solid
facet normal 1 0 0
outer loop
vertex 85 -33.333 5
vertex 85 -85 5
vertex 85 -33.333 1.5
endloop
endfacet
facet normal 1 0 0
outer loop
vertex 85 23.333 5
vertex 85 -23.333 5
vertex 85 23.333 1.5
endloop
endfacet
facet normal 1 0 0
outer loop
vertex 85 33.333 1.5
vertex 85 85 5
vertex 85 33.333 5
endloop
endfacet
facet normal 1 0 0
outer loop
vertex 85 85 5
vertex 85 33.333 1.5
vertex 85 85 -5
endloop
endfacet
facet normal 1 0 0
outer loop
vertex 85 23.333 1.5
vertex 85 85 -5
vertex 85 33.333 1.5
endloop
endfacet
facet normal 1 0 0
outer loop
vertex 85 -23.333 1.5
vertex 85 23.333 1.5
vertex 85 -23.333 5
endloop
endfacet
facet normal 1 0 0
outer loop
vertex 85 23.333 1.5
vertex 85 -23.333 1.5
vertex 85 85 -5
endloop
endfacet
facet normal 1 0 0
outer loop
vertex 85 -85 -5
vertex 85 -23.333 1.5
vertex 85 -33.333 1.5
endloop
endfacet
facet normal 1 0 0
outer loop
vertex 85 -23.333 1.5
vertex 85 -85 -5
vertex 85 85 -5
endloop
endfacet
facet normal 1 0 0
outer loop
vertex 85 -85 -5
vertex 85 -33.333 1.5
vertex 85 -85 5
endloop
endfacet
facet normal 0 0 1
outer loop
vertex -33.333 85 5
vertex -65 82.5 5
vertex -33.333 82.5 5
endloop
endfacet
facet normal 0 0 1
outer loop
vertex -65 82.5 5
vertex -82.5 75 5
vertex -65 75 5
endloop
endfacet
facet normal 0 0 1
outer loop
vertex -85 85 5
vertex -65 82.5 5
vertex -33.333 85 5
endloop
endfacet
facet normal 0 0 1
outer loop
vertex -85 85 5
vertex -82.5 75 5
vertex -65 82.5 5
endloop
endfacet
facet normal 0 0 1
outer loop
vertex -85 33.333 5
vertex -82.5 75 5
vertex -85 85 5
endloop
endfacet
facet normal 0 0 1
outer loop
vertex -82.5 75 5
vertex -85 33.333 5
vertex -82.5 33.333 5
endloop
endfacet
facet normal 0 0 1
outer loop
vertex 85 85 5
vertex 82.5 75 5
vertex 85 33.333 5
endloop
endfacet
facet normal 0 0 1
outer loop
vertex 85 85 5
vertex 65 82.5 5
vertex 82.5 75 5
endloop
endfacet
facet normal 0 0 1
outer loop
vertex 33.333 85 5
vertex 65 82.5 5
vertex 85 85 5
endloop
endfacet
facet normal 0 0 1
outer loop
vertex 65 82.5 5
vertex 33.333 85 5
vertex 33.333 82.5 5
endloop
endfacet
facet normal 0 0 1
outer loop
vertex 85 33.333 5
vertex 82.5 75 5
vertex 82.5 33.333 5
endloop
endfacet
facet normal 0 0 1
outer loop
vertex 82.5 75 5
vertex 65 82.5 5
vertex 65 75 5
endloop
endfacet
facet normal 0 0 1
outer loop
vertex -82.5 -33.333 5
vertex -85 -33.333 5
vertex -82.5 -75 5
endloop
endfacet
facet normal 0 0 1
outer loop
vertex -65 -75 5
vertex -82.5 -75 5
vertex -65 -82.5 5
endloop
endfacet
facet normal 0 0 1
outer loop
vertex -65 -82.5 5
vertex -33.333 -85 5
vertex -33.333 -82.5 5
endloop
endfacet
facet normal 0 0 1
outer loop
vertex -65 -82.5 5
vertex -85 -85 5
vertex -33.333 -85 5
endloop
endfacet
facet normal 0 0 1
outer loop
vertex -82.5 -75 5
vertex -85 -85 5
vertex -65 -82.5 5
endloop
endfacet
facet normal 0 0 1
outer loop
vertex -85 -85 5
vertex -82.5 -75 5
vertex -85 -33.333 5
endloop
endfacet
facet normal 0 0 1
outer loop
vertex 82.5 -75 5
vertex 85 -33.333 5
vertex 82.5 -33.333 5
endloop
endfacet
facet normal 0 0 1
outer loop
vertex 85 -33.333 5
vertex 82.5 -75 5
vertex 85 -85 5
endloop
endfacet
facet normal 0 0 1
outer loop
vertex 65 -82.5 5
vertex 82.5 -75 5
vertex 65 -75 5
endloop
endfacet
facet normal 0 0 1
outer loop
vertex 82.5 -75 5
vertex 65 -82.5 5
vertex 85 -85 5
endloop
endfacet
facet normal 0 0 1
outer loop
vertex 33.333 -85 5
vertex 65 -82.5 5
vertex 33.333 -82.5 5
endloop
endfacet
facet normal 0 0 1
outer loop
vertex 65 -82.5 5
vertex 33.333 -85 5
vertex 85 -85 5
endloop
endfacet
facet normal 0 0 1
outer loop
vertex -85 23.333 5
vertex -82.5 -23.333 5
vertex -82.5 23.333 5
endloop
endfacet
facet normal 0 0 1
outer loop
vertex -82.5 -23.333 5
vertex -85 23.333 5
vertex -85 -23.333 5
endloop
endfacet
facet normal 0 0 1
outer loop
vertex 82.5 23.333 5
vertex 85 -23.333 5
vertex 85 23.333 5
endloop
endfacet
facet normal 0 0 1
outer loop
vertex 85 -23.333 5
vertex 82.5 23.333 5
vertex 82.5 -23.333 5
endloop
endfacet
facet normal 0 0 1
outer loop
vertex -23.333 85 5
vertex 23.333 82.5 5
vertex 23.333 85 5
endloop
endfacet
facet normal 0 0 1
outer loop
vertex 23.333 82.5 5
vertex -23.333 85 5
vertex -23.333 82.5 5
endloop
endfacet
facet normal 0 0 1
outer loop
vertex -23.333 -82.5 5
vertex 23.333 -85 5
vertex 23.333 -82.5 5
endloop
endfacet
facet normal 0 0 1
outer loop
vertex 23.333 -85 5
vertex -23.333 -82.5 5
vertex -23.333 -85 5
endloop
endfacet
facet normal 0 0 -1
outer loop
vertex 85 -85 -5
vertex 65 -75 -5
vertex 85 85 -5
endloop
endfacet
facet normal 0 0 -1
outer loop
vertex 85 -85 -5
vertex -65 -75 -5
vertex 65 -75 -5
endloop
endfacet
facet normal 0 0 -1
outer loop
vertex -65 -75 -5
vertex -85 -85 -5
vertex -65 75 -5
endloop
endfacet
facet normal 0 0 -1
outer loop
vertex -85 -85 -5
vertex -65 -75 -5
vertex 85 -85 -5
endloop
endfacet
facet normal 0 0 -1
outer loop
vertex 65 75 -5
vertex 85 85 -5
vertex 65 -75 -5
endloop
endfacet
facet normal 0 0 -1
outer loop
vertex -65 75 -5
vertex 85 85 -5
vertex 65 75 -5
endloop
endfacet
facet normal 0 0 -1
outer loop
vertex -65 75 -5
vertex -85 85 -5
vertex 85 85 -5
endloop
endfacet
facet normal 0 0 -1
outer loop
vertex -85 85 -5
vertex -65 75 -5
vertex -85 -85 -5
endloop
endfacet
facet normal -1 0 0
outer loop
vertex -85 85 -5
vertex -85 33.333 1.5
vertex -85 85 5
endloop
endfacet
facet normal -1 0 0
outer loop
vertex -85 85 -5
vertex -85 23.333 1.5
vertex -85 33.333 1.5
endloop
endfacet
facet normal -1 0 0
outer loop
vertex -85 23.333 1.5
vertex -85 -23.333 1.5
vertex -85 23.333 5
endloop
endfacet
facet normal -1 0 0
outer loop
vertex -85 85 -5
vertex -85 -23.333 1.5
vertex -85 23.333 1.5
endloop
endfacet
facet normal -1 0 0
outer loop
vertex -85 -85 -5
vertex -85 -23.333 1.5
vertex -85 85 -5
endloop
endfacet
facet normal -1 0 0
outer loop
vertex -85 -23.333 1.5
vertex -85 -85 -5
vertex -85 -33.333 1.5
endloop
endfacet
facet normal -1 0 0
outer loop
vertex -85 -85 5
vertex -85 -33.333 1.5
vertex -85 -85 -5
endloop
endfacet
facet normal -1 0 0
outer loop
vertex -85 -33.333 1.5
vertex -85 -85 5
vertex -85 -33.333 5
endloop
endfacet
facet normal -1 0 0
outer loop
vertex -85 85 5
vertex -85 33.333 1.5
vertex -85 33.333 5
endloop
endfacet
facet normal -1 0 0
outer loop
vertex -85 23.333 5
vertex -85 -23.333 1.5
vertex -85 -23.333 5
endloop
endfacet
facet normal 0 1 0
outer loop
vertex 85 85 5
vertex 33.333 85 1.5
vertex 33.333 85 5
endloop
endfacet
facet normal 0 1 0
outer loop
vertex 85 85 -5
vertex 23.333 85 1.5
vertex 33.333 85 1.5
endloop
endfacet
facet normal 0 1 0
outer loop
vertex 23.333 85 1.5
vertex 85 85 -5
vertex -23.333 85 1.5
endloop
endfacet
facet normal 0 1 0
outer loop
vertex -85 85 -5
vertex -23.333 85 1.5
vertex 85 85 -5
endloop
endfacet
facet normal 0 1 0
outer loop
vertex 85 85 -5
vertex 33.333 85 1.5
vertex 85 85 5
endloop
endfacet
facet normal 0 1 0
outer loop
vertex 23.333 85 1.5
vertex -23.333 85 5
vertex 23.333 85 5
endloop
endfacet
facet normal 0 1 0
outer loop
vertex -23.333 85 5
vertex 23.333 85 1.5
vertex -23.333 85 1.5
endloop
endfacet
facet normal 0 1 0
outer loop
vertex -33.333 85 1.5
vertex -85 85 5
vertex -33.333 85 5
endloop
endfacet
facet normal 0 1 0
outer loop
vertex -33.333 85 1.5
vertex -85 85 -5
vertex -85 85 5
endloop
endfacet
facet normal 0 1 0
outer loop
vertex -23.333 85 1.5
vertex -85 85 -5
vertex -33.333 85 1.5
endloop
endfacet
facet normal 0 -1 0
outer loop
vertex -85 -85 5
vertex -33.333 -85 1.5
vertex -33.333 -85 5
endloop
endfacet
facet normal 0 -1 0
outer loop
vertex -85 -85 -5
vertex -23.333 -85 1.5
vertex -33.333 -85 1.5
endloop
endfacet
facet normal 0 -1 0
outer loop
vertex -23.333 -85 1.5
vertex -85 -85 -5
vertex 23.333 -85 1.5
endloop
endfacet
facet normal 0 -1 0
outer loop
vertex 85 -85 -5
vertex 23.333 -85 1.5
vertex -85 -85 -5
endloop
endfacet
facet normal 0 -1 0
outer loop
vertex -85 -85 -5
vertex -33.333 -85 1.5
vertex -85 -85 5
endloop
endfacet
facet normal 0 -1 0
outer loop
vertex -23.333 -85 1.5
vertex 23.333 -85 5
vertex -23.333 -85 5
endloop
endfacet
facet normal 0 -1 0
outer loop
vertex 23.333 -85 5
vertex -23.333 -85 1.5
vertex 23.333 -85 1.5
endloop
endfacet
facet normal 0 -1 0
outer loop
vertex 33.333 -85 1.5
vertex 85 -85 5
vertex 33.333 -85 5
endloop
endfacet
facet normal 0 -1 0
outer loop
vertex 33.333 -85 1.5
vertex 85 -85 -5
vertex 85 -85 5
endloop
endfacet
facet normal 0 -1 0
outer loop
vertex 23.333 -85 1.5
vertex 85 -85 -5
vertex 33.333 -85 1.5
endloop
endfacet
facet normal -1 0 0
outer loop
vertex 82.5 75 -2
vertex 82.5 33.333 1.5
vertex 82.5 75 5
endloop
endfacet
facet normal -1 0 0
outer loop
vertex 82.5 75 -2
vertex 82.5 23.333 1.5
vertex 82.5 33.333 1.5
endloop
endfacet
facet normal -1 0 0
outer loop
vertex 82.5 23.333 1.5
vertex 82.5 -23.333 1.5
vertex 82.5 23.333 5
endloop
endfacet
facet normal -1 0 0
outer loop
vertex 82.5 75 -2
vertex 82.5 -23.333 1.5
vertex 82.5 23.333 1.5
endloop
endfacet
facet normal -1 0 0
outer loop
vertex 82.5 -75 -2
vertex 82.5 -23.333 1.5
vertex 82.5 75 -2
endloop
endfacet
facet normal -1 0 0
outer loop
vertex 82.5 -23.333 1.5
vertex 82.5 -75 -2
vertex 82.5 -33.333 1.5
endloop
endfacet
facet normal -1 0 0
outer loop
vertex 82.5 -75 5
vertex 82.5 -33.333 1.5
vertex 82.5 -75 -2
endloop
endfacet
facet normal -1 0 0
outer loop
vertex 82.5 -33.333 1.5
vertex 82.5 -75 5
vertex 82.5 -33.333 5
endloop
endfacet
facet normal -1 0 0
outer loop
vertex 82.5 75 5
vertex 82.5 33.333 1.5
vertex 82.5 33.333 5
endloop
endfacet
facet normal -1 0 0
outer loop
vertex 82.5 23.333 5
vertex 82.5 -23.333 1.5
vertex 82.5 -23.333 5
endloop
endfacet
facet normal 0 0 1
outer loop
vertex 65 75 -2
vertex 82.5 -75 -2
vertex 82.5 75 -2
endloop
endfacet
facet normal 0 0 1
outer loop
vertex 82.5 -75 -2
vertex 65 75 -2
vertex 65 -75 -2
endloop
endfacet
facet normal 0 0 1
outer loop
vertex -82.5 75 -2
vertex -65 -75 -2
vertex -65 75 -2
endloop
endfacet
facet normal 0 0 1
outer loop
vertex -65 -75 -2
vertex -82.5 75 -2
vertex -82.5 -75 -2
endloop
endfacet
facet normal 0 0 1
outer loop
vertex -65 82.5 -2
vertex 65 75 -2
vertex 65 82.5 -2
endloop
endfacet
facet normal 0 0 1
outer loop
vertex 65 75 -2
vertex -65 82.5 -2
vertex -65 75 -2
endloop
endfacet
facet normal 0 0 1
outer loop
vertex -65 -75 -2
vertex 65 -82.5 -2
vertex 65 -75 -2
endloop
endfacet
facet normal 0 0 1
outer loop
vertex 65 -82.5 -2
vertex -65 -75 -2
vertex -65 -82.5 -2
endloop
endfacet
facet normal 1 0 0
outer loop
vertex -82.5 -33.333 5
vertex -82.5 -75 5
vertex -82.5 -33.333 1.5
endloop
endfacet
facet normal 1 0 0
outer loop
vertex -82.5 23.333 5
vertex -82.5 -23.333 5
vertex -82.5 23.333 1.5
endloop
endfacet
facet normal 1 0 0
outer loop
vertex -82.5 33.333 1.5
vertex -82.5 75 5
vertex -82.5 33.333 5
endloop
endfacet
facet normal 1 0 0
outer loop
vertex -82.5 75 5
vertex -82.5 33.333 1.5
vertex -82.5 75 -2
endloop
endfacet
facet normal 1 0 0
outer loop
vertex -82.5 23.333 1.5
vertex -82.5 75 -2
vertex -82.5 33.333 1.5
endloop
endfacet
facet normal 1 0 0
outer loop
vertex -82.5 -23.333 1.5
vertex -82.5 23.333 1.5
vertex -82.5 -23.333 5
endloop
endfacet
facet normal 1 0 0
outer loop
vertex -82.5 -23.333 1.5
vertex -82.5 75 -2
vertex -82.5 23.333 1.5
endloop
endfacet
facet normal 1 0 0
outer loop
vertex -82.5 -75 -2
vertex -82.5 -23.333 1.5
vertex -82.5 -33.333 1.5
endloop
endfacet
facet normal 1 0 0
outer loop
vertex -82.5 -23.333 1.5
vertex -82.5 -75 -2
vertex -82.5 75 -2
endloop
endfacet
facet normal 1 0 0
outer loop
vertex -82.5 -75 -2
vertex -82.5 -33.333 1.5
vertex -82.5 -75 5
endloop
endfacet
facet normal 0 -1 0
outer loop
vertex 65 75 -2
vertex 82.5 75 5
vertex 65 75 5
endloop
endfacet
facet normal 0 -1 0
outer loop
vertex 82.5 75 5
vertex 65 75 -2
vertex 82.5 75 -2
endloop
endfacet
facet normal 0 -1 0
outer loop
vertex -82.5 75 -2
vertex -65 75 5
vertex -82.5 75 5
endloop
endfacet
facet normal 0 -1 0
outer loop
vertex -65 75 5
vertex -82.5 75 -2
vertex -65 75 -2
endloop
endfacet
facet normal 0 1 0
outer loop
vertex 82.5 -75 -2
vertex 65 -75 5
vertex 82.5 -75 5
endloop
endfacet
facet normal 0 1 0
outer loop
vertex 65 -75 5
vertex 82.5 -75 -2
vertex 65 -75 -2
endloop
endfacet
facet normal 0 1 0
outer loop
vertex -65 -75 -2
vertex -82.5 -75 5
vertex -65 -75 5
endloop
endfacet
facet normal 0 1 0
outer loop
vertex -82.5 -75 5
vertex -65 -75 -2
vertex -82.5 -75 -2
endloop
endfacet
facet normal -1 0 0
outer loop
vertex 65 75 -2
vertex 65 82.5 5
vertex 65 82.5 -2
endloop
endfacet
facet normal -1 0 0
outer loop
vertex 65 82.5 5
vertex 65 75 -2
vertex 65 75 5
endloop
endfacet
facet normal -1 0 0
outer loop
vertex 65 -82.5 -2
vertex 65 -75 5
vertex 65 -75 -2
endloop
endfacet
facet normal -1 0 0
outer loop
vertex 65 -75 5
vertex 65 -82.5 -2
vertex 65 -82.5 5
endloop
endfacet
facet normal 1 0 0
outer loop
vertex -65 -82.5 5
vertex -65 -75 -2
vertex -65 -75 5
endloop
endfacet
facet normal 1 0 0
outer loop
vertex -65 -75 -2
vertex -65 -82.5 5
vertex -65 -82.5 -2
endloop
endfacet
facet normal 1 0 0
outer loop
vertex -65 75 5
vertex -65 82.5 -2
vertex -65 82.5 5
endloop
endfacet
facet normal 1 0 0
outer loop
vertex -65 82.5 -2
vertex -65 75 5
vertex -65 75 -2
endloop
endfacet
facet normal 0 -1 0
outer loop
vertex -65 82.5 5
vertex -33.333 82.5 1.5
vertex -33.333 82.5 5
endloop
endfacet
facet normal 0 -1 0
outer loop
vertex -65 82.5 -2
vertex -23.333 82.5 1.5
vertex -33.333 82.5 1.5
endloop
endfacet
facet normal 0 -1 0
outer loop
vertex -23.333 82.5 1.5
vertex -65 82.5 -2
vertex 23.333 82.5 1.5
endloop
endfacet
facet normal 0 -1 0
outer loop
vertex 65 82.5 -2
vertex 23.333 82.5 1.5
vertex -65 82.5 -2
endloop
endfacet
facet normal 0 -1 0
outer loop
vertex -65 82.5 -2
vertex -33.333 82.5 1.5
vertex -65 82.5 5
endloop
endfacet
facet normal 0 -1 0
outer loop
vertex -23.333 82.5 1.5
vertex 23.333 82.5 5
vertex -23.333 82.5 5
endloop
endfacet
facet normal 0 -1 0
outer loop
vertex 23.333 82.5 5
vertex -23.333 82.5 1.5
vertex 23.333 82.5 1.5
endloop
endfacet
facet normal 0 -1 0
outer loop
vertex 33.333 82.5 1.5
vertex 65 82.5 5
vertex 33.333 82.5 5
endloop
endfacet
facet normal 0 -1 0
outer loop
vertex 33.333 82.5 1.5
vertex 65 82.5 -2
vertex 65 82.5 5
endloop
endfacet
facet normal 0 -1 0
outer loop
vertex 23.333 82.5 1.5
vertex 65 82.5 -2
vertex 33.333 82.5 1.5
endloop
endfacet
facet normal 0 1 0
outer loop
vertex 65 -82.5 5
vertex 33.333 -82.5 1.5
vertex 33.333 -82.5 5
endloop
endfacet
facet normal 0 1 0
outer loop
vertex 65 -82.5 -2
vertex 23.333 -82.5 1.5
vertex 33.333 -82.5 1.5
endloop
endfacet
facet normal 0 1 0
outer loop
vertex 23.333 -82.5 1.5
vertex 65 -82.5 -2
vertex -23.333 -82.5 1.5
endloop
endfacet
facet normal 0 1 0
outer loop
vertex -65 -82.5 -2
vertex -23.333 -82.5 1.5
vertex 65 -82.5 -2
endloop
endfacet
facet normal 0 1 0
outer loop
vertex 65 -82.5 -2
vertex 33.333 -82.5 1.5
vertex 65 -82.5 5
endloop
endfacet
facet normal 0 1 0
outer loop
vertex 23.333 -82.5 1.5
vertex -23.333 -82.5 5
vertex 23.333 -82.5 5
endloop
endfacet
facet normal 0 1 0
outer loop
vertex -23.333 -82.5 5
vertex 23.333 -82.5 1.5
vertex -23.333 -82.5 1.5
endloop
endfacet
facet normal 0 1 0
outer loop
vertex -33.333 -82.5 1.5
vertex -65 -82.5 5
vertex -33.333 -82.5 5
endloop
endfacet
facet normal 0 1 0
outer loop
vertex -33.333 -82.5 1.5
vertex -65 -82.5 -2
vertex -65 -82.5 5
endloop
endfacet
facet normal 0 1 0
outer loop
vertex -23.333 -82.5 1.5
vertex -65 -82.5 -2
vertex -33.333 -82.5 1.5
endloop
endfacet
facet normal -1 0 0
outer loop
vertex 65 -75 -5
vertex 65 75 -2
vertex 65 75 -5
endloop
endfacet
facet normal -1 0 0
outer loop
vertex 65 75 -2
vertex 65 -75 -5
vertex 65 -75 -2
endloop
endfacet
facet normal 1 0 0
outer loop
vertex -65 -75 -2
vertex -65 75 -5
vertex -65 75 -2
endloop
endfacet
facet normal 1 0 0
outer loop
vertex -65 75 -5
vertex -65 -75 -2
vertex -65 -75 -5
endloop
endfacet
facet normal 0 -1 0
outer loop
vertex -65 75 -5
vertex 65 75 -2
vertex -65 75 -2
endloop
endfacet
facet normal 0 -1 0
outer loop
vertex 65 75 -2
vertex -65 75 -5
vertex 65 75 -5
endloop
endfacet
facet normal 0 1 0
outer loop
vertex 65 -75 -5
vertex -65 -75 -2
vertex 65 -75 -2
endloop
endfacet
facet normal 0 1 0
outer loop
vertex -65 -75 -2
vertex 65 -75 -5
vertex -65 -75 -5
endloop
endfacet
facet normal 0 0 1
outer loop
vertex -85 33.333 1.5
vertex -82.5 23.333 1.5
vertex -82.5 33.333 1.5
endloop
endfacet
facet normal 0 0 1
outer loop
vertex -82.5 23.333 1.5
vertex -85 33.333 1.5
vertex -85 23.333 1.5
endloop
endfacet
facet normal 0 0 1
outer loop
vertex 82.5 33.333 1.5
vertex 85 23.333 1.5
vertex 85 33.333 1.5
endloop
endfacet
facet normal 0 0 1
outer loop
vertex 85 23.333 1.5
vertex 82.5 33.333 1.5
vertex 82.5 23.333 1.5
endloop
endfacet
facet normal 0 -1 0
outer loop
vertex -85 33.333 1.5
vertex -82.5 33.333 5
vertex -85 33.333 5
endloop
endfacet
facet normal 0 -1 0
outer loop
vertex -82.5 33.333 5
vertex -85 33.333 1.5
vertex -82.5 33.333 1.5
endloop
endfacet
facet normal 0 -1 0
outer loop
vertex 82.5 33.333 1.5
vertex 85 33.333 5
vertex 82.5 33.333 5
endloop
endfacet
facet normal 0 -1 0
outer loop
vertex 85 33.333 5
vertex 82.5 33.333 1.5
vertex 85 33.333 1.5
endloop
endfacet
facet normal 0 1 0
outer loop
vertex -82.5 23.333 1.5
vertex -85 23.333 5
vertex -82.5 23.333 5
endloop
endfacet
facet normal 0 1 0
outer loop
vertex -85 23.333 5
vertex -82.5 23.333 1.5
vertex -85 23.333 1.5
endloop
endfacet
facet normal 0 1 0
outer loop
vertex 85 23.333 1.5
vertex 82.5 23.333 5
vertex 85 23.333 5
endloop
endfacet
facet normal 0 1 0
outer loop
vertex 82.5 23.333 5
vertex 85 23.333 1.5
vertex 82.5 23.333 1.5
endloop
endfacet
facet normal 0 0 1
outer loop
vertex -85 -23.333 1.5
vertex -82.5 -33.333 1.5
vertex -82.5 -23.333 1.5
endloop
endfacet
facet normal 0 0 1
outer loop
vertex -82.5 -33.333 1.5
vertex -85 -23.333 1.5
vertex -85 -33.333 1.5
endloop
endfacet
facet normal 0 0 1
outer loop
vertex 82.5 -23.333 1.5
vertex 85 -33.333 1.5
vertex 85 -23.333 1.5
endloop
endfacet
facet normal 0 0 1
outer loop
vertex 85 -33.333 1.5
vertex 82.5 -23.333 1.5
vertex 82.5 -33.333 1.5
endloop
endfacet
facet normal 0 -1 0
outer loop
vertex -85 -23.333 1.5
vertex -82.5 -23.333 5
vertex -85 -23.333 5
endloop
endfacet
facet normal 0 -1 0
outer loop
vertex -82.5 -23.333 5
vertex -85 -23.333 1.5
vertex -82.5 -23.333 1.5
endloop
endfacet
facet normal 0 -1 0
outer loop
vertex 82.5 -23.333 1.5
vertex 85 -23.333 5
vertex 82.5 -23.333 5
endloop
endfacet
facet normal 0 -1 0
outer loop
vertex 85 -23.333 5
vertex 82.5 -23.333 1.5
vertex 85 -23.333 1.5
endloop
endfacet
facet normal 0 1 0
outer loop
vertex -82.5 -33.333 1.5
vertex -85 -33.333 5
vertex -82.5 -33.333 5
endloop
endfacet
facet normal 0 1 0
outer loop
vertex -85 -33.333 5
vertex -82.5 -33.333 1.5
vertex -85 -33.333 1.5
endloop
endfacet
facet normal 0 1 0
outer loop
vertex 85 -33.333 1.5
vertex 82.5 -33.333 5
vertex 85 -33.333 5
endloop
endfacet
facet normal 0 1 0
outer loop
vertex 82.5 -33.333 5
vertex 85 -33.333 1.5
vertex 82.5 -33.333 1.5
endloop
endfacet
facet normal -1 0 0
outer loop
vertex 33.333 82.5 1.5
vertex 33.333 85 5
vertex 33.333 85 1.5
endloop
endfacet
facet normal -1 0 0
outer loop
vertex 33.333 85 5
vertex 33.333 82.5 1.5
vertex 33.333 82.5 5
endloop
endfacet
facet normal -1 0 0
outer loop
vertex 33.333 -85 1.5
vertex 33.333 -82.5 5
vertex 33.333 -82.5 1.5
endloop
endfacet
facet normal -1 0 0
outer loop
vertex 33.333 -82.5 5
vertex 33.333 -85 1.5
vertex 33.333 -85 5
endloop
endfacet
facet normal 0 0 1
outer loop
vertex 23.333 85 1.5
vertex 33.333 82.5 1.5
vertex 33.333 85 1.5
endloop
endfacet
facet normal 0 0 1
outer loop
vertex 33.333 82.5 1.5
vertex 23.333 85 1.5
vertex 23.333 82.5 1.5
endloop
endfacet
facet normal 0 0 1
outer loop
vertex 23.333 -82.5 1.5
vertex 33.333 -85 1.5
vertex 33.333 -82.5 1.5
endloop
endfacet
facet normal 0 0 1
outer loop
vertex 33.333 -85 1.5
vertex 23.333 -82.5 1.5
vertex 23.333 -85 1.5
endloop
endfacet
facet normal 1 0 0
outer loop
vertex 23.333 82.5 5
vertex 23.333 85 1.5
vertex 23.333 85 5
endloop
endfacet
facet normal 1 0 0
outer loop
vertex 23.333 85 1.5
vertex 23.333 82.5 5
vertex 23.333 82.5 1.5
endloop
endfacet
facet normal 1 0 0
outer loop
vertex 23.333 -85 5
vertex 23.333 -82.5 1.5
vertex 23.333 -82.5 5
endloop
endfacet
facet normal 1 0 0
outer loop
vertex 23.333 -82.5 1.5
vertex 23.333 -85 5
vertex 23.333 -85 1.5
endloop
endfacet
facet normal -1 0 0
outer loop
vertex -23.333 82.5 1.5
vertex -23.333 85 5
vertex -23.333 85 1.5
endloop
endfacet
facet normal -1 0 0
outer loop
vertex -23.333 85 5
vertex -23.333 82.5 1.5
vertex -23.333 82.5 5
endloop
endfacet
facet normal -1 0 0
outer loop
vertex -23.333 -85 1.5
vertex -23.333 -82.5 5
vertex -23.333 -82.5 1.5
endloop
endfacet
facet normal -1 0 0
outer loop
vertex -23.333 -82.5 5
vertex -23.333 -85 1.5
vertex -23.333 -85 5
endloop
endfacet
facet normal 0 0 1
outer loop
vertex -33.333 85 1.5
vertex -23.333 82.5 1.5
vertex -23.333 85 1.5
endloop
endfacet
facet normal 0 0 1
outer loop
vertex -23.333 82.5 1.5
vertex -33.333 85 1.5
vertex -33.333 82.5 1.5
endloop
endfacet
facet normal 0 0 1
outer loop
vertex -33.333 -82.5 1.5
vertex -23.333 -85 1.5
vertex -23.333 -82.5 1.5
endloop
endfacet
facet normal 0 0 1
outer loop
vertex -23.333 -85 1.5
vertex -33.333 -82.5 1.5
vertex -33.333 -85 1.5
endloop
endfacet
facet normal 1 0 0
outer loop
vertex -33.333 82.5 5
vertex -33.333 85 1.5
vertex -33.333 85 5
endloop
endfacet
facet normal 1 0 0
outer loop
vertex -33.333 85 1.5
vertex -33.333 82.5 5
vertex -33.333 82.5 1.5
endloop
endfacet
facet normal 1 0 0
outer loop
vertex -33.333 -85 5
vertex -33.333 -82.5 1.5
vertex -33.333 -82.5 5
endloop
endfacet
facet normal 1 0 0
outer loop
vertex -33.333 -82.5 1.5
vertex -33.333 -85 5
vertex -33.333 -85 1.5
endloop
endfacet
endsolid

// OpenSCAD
difference() {
    cube([170,170,10], center=true);
    translate([0,0,3]) cube([165,150,10], center=true);
    translate([0,0,3]) cube([130,165,10], center=true);
    translate([0,0,0]) cube([130,150,15], center=true);
    translate([0,170/6,4]) cube([171,10,5], center=true);
    translate([0,-170/6,4]) cube([171,10,5], center=true);
    translate([170/6,0,4]) cube([10,171,5], center=true);
    translate([-170/6,0,4]) cube([10,171,5], center=true);
}
